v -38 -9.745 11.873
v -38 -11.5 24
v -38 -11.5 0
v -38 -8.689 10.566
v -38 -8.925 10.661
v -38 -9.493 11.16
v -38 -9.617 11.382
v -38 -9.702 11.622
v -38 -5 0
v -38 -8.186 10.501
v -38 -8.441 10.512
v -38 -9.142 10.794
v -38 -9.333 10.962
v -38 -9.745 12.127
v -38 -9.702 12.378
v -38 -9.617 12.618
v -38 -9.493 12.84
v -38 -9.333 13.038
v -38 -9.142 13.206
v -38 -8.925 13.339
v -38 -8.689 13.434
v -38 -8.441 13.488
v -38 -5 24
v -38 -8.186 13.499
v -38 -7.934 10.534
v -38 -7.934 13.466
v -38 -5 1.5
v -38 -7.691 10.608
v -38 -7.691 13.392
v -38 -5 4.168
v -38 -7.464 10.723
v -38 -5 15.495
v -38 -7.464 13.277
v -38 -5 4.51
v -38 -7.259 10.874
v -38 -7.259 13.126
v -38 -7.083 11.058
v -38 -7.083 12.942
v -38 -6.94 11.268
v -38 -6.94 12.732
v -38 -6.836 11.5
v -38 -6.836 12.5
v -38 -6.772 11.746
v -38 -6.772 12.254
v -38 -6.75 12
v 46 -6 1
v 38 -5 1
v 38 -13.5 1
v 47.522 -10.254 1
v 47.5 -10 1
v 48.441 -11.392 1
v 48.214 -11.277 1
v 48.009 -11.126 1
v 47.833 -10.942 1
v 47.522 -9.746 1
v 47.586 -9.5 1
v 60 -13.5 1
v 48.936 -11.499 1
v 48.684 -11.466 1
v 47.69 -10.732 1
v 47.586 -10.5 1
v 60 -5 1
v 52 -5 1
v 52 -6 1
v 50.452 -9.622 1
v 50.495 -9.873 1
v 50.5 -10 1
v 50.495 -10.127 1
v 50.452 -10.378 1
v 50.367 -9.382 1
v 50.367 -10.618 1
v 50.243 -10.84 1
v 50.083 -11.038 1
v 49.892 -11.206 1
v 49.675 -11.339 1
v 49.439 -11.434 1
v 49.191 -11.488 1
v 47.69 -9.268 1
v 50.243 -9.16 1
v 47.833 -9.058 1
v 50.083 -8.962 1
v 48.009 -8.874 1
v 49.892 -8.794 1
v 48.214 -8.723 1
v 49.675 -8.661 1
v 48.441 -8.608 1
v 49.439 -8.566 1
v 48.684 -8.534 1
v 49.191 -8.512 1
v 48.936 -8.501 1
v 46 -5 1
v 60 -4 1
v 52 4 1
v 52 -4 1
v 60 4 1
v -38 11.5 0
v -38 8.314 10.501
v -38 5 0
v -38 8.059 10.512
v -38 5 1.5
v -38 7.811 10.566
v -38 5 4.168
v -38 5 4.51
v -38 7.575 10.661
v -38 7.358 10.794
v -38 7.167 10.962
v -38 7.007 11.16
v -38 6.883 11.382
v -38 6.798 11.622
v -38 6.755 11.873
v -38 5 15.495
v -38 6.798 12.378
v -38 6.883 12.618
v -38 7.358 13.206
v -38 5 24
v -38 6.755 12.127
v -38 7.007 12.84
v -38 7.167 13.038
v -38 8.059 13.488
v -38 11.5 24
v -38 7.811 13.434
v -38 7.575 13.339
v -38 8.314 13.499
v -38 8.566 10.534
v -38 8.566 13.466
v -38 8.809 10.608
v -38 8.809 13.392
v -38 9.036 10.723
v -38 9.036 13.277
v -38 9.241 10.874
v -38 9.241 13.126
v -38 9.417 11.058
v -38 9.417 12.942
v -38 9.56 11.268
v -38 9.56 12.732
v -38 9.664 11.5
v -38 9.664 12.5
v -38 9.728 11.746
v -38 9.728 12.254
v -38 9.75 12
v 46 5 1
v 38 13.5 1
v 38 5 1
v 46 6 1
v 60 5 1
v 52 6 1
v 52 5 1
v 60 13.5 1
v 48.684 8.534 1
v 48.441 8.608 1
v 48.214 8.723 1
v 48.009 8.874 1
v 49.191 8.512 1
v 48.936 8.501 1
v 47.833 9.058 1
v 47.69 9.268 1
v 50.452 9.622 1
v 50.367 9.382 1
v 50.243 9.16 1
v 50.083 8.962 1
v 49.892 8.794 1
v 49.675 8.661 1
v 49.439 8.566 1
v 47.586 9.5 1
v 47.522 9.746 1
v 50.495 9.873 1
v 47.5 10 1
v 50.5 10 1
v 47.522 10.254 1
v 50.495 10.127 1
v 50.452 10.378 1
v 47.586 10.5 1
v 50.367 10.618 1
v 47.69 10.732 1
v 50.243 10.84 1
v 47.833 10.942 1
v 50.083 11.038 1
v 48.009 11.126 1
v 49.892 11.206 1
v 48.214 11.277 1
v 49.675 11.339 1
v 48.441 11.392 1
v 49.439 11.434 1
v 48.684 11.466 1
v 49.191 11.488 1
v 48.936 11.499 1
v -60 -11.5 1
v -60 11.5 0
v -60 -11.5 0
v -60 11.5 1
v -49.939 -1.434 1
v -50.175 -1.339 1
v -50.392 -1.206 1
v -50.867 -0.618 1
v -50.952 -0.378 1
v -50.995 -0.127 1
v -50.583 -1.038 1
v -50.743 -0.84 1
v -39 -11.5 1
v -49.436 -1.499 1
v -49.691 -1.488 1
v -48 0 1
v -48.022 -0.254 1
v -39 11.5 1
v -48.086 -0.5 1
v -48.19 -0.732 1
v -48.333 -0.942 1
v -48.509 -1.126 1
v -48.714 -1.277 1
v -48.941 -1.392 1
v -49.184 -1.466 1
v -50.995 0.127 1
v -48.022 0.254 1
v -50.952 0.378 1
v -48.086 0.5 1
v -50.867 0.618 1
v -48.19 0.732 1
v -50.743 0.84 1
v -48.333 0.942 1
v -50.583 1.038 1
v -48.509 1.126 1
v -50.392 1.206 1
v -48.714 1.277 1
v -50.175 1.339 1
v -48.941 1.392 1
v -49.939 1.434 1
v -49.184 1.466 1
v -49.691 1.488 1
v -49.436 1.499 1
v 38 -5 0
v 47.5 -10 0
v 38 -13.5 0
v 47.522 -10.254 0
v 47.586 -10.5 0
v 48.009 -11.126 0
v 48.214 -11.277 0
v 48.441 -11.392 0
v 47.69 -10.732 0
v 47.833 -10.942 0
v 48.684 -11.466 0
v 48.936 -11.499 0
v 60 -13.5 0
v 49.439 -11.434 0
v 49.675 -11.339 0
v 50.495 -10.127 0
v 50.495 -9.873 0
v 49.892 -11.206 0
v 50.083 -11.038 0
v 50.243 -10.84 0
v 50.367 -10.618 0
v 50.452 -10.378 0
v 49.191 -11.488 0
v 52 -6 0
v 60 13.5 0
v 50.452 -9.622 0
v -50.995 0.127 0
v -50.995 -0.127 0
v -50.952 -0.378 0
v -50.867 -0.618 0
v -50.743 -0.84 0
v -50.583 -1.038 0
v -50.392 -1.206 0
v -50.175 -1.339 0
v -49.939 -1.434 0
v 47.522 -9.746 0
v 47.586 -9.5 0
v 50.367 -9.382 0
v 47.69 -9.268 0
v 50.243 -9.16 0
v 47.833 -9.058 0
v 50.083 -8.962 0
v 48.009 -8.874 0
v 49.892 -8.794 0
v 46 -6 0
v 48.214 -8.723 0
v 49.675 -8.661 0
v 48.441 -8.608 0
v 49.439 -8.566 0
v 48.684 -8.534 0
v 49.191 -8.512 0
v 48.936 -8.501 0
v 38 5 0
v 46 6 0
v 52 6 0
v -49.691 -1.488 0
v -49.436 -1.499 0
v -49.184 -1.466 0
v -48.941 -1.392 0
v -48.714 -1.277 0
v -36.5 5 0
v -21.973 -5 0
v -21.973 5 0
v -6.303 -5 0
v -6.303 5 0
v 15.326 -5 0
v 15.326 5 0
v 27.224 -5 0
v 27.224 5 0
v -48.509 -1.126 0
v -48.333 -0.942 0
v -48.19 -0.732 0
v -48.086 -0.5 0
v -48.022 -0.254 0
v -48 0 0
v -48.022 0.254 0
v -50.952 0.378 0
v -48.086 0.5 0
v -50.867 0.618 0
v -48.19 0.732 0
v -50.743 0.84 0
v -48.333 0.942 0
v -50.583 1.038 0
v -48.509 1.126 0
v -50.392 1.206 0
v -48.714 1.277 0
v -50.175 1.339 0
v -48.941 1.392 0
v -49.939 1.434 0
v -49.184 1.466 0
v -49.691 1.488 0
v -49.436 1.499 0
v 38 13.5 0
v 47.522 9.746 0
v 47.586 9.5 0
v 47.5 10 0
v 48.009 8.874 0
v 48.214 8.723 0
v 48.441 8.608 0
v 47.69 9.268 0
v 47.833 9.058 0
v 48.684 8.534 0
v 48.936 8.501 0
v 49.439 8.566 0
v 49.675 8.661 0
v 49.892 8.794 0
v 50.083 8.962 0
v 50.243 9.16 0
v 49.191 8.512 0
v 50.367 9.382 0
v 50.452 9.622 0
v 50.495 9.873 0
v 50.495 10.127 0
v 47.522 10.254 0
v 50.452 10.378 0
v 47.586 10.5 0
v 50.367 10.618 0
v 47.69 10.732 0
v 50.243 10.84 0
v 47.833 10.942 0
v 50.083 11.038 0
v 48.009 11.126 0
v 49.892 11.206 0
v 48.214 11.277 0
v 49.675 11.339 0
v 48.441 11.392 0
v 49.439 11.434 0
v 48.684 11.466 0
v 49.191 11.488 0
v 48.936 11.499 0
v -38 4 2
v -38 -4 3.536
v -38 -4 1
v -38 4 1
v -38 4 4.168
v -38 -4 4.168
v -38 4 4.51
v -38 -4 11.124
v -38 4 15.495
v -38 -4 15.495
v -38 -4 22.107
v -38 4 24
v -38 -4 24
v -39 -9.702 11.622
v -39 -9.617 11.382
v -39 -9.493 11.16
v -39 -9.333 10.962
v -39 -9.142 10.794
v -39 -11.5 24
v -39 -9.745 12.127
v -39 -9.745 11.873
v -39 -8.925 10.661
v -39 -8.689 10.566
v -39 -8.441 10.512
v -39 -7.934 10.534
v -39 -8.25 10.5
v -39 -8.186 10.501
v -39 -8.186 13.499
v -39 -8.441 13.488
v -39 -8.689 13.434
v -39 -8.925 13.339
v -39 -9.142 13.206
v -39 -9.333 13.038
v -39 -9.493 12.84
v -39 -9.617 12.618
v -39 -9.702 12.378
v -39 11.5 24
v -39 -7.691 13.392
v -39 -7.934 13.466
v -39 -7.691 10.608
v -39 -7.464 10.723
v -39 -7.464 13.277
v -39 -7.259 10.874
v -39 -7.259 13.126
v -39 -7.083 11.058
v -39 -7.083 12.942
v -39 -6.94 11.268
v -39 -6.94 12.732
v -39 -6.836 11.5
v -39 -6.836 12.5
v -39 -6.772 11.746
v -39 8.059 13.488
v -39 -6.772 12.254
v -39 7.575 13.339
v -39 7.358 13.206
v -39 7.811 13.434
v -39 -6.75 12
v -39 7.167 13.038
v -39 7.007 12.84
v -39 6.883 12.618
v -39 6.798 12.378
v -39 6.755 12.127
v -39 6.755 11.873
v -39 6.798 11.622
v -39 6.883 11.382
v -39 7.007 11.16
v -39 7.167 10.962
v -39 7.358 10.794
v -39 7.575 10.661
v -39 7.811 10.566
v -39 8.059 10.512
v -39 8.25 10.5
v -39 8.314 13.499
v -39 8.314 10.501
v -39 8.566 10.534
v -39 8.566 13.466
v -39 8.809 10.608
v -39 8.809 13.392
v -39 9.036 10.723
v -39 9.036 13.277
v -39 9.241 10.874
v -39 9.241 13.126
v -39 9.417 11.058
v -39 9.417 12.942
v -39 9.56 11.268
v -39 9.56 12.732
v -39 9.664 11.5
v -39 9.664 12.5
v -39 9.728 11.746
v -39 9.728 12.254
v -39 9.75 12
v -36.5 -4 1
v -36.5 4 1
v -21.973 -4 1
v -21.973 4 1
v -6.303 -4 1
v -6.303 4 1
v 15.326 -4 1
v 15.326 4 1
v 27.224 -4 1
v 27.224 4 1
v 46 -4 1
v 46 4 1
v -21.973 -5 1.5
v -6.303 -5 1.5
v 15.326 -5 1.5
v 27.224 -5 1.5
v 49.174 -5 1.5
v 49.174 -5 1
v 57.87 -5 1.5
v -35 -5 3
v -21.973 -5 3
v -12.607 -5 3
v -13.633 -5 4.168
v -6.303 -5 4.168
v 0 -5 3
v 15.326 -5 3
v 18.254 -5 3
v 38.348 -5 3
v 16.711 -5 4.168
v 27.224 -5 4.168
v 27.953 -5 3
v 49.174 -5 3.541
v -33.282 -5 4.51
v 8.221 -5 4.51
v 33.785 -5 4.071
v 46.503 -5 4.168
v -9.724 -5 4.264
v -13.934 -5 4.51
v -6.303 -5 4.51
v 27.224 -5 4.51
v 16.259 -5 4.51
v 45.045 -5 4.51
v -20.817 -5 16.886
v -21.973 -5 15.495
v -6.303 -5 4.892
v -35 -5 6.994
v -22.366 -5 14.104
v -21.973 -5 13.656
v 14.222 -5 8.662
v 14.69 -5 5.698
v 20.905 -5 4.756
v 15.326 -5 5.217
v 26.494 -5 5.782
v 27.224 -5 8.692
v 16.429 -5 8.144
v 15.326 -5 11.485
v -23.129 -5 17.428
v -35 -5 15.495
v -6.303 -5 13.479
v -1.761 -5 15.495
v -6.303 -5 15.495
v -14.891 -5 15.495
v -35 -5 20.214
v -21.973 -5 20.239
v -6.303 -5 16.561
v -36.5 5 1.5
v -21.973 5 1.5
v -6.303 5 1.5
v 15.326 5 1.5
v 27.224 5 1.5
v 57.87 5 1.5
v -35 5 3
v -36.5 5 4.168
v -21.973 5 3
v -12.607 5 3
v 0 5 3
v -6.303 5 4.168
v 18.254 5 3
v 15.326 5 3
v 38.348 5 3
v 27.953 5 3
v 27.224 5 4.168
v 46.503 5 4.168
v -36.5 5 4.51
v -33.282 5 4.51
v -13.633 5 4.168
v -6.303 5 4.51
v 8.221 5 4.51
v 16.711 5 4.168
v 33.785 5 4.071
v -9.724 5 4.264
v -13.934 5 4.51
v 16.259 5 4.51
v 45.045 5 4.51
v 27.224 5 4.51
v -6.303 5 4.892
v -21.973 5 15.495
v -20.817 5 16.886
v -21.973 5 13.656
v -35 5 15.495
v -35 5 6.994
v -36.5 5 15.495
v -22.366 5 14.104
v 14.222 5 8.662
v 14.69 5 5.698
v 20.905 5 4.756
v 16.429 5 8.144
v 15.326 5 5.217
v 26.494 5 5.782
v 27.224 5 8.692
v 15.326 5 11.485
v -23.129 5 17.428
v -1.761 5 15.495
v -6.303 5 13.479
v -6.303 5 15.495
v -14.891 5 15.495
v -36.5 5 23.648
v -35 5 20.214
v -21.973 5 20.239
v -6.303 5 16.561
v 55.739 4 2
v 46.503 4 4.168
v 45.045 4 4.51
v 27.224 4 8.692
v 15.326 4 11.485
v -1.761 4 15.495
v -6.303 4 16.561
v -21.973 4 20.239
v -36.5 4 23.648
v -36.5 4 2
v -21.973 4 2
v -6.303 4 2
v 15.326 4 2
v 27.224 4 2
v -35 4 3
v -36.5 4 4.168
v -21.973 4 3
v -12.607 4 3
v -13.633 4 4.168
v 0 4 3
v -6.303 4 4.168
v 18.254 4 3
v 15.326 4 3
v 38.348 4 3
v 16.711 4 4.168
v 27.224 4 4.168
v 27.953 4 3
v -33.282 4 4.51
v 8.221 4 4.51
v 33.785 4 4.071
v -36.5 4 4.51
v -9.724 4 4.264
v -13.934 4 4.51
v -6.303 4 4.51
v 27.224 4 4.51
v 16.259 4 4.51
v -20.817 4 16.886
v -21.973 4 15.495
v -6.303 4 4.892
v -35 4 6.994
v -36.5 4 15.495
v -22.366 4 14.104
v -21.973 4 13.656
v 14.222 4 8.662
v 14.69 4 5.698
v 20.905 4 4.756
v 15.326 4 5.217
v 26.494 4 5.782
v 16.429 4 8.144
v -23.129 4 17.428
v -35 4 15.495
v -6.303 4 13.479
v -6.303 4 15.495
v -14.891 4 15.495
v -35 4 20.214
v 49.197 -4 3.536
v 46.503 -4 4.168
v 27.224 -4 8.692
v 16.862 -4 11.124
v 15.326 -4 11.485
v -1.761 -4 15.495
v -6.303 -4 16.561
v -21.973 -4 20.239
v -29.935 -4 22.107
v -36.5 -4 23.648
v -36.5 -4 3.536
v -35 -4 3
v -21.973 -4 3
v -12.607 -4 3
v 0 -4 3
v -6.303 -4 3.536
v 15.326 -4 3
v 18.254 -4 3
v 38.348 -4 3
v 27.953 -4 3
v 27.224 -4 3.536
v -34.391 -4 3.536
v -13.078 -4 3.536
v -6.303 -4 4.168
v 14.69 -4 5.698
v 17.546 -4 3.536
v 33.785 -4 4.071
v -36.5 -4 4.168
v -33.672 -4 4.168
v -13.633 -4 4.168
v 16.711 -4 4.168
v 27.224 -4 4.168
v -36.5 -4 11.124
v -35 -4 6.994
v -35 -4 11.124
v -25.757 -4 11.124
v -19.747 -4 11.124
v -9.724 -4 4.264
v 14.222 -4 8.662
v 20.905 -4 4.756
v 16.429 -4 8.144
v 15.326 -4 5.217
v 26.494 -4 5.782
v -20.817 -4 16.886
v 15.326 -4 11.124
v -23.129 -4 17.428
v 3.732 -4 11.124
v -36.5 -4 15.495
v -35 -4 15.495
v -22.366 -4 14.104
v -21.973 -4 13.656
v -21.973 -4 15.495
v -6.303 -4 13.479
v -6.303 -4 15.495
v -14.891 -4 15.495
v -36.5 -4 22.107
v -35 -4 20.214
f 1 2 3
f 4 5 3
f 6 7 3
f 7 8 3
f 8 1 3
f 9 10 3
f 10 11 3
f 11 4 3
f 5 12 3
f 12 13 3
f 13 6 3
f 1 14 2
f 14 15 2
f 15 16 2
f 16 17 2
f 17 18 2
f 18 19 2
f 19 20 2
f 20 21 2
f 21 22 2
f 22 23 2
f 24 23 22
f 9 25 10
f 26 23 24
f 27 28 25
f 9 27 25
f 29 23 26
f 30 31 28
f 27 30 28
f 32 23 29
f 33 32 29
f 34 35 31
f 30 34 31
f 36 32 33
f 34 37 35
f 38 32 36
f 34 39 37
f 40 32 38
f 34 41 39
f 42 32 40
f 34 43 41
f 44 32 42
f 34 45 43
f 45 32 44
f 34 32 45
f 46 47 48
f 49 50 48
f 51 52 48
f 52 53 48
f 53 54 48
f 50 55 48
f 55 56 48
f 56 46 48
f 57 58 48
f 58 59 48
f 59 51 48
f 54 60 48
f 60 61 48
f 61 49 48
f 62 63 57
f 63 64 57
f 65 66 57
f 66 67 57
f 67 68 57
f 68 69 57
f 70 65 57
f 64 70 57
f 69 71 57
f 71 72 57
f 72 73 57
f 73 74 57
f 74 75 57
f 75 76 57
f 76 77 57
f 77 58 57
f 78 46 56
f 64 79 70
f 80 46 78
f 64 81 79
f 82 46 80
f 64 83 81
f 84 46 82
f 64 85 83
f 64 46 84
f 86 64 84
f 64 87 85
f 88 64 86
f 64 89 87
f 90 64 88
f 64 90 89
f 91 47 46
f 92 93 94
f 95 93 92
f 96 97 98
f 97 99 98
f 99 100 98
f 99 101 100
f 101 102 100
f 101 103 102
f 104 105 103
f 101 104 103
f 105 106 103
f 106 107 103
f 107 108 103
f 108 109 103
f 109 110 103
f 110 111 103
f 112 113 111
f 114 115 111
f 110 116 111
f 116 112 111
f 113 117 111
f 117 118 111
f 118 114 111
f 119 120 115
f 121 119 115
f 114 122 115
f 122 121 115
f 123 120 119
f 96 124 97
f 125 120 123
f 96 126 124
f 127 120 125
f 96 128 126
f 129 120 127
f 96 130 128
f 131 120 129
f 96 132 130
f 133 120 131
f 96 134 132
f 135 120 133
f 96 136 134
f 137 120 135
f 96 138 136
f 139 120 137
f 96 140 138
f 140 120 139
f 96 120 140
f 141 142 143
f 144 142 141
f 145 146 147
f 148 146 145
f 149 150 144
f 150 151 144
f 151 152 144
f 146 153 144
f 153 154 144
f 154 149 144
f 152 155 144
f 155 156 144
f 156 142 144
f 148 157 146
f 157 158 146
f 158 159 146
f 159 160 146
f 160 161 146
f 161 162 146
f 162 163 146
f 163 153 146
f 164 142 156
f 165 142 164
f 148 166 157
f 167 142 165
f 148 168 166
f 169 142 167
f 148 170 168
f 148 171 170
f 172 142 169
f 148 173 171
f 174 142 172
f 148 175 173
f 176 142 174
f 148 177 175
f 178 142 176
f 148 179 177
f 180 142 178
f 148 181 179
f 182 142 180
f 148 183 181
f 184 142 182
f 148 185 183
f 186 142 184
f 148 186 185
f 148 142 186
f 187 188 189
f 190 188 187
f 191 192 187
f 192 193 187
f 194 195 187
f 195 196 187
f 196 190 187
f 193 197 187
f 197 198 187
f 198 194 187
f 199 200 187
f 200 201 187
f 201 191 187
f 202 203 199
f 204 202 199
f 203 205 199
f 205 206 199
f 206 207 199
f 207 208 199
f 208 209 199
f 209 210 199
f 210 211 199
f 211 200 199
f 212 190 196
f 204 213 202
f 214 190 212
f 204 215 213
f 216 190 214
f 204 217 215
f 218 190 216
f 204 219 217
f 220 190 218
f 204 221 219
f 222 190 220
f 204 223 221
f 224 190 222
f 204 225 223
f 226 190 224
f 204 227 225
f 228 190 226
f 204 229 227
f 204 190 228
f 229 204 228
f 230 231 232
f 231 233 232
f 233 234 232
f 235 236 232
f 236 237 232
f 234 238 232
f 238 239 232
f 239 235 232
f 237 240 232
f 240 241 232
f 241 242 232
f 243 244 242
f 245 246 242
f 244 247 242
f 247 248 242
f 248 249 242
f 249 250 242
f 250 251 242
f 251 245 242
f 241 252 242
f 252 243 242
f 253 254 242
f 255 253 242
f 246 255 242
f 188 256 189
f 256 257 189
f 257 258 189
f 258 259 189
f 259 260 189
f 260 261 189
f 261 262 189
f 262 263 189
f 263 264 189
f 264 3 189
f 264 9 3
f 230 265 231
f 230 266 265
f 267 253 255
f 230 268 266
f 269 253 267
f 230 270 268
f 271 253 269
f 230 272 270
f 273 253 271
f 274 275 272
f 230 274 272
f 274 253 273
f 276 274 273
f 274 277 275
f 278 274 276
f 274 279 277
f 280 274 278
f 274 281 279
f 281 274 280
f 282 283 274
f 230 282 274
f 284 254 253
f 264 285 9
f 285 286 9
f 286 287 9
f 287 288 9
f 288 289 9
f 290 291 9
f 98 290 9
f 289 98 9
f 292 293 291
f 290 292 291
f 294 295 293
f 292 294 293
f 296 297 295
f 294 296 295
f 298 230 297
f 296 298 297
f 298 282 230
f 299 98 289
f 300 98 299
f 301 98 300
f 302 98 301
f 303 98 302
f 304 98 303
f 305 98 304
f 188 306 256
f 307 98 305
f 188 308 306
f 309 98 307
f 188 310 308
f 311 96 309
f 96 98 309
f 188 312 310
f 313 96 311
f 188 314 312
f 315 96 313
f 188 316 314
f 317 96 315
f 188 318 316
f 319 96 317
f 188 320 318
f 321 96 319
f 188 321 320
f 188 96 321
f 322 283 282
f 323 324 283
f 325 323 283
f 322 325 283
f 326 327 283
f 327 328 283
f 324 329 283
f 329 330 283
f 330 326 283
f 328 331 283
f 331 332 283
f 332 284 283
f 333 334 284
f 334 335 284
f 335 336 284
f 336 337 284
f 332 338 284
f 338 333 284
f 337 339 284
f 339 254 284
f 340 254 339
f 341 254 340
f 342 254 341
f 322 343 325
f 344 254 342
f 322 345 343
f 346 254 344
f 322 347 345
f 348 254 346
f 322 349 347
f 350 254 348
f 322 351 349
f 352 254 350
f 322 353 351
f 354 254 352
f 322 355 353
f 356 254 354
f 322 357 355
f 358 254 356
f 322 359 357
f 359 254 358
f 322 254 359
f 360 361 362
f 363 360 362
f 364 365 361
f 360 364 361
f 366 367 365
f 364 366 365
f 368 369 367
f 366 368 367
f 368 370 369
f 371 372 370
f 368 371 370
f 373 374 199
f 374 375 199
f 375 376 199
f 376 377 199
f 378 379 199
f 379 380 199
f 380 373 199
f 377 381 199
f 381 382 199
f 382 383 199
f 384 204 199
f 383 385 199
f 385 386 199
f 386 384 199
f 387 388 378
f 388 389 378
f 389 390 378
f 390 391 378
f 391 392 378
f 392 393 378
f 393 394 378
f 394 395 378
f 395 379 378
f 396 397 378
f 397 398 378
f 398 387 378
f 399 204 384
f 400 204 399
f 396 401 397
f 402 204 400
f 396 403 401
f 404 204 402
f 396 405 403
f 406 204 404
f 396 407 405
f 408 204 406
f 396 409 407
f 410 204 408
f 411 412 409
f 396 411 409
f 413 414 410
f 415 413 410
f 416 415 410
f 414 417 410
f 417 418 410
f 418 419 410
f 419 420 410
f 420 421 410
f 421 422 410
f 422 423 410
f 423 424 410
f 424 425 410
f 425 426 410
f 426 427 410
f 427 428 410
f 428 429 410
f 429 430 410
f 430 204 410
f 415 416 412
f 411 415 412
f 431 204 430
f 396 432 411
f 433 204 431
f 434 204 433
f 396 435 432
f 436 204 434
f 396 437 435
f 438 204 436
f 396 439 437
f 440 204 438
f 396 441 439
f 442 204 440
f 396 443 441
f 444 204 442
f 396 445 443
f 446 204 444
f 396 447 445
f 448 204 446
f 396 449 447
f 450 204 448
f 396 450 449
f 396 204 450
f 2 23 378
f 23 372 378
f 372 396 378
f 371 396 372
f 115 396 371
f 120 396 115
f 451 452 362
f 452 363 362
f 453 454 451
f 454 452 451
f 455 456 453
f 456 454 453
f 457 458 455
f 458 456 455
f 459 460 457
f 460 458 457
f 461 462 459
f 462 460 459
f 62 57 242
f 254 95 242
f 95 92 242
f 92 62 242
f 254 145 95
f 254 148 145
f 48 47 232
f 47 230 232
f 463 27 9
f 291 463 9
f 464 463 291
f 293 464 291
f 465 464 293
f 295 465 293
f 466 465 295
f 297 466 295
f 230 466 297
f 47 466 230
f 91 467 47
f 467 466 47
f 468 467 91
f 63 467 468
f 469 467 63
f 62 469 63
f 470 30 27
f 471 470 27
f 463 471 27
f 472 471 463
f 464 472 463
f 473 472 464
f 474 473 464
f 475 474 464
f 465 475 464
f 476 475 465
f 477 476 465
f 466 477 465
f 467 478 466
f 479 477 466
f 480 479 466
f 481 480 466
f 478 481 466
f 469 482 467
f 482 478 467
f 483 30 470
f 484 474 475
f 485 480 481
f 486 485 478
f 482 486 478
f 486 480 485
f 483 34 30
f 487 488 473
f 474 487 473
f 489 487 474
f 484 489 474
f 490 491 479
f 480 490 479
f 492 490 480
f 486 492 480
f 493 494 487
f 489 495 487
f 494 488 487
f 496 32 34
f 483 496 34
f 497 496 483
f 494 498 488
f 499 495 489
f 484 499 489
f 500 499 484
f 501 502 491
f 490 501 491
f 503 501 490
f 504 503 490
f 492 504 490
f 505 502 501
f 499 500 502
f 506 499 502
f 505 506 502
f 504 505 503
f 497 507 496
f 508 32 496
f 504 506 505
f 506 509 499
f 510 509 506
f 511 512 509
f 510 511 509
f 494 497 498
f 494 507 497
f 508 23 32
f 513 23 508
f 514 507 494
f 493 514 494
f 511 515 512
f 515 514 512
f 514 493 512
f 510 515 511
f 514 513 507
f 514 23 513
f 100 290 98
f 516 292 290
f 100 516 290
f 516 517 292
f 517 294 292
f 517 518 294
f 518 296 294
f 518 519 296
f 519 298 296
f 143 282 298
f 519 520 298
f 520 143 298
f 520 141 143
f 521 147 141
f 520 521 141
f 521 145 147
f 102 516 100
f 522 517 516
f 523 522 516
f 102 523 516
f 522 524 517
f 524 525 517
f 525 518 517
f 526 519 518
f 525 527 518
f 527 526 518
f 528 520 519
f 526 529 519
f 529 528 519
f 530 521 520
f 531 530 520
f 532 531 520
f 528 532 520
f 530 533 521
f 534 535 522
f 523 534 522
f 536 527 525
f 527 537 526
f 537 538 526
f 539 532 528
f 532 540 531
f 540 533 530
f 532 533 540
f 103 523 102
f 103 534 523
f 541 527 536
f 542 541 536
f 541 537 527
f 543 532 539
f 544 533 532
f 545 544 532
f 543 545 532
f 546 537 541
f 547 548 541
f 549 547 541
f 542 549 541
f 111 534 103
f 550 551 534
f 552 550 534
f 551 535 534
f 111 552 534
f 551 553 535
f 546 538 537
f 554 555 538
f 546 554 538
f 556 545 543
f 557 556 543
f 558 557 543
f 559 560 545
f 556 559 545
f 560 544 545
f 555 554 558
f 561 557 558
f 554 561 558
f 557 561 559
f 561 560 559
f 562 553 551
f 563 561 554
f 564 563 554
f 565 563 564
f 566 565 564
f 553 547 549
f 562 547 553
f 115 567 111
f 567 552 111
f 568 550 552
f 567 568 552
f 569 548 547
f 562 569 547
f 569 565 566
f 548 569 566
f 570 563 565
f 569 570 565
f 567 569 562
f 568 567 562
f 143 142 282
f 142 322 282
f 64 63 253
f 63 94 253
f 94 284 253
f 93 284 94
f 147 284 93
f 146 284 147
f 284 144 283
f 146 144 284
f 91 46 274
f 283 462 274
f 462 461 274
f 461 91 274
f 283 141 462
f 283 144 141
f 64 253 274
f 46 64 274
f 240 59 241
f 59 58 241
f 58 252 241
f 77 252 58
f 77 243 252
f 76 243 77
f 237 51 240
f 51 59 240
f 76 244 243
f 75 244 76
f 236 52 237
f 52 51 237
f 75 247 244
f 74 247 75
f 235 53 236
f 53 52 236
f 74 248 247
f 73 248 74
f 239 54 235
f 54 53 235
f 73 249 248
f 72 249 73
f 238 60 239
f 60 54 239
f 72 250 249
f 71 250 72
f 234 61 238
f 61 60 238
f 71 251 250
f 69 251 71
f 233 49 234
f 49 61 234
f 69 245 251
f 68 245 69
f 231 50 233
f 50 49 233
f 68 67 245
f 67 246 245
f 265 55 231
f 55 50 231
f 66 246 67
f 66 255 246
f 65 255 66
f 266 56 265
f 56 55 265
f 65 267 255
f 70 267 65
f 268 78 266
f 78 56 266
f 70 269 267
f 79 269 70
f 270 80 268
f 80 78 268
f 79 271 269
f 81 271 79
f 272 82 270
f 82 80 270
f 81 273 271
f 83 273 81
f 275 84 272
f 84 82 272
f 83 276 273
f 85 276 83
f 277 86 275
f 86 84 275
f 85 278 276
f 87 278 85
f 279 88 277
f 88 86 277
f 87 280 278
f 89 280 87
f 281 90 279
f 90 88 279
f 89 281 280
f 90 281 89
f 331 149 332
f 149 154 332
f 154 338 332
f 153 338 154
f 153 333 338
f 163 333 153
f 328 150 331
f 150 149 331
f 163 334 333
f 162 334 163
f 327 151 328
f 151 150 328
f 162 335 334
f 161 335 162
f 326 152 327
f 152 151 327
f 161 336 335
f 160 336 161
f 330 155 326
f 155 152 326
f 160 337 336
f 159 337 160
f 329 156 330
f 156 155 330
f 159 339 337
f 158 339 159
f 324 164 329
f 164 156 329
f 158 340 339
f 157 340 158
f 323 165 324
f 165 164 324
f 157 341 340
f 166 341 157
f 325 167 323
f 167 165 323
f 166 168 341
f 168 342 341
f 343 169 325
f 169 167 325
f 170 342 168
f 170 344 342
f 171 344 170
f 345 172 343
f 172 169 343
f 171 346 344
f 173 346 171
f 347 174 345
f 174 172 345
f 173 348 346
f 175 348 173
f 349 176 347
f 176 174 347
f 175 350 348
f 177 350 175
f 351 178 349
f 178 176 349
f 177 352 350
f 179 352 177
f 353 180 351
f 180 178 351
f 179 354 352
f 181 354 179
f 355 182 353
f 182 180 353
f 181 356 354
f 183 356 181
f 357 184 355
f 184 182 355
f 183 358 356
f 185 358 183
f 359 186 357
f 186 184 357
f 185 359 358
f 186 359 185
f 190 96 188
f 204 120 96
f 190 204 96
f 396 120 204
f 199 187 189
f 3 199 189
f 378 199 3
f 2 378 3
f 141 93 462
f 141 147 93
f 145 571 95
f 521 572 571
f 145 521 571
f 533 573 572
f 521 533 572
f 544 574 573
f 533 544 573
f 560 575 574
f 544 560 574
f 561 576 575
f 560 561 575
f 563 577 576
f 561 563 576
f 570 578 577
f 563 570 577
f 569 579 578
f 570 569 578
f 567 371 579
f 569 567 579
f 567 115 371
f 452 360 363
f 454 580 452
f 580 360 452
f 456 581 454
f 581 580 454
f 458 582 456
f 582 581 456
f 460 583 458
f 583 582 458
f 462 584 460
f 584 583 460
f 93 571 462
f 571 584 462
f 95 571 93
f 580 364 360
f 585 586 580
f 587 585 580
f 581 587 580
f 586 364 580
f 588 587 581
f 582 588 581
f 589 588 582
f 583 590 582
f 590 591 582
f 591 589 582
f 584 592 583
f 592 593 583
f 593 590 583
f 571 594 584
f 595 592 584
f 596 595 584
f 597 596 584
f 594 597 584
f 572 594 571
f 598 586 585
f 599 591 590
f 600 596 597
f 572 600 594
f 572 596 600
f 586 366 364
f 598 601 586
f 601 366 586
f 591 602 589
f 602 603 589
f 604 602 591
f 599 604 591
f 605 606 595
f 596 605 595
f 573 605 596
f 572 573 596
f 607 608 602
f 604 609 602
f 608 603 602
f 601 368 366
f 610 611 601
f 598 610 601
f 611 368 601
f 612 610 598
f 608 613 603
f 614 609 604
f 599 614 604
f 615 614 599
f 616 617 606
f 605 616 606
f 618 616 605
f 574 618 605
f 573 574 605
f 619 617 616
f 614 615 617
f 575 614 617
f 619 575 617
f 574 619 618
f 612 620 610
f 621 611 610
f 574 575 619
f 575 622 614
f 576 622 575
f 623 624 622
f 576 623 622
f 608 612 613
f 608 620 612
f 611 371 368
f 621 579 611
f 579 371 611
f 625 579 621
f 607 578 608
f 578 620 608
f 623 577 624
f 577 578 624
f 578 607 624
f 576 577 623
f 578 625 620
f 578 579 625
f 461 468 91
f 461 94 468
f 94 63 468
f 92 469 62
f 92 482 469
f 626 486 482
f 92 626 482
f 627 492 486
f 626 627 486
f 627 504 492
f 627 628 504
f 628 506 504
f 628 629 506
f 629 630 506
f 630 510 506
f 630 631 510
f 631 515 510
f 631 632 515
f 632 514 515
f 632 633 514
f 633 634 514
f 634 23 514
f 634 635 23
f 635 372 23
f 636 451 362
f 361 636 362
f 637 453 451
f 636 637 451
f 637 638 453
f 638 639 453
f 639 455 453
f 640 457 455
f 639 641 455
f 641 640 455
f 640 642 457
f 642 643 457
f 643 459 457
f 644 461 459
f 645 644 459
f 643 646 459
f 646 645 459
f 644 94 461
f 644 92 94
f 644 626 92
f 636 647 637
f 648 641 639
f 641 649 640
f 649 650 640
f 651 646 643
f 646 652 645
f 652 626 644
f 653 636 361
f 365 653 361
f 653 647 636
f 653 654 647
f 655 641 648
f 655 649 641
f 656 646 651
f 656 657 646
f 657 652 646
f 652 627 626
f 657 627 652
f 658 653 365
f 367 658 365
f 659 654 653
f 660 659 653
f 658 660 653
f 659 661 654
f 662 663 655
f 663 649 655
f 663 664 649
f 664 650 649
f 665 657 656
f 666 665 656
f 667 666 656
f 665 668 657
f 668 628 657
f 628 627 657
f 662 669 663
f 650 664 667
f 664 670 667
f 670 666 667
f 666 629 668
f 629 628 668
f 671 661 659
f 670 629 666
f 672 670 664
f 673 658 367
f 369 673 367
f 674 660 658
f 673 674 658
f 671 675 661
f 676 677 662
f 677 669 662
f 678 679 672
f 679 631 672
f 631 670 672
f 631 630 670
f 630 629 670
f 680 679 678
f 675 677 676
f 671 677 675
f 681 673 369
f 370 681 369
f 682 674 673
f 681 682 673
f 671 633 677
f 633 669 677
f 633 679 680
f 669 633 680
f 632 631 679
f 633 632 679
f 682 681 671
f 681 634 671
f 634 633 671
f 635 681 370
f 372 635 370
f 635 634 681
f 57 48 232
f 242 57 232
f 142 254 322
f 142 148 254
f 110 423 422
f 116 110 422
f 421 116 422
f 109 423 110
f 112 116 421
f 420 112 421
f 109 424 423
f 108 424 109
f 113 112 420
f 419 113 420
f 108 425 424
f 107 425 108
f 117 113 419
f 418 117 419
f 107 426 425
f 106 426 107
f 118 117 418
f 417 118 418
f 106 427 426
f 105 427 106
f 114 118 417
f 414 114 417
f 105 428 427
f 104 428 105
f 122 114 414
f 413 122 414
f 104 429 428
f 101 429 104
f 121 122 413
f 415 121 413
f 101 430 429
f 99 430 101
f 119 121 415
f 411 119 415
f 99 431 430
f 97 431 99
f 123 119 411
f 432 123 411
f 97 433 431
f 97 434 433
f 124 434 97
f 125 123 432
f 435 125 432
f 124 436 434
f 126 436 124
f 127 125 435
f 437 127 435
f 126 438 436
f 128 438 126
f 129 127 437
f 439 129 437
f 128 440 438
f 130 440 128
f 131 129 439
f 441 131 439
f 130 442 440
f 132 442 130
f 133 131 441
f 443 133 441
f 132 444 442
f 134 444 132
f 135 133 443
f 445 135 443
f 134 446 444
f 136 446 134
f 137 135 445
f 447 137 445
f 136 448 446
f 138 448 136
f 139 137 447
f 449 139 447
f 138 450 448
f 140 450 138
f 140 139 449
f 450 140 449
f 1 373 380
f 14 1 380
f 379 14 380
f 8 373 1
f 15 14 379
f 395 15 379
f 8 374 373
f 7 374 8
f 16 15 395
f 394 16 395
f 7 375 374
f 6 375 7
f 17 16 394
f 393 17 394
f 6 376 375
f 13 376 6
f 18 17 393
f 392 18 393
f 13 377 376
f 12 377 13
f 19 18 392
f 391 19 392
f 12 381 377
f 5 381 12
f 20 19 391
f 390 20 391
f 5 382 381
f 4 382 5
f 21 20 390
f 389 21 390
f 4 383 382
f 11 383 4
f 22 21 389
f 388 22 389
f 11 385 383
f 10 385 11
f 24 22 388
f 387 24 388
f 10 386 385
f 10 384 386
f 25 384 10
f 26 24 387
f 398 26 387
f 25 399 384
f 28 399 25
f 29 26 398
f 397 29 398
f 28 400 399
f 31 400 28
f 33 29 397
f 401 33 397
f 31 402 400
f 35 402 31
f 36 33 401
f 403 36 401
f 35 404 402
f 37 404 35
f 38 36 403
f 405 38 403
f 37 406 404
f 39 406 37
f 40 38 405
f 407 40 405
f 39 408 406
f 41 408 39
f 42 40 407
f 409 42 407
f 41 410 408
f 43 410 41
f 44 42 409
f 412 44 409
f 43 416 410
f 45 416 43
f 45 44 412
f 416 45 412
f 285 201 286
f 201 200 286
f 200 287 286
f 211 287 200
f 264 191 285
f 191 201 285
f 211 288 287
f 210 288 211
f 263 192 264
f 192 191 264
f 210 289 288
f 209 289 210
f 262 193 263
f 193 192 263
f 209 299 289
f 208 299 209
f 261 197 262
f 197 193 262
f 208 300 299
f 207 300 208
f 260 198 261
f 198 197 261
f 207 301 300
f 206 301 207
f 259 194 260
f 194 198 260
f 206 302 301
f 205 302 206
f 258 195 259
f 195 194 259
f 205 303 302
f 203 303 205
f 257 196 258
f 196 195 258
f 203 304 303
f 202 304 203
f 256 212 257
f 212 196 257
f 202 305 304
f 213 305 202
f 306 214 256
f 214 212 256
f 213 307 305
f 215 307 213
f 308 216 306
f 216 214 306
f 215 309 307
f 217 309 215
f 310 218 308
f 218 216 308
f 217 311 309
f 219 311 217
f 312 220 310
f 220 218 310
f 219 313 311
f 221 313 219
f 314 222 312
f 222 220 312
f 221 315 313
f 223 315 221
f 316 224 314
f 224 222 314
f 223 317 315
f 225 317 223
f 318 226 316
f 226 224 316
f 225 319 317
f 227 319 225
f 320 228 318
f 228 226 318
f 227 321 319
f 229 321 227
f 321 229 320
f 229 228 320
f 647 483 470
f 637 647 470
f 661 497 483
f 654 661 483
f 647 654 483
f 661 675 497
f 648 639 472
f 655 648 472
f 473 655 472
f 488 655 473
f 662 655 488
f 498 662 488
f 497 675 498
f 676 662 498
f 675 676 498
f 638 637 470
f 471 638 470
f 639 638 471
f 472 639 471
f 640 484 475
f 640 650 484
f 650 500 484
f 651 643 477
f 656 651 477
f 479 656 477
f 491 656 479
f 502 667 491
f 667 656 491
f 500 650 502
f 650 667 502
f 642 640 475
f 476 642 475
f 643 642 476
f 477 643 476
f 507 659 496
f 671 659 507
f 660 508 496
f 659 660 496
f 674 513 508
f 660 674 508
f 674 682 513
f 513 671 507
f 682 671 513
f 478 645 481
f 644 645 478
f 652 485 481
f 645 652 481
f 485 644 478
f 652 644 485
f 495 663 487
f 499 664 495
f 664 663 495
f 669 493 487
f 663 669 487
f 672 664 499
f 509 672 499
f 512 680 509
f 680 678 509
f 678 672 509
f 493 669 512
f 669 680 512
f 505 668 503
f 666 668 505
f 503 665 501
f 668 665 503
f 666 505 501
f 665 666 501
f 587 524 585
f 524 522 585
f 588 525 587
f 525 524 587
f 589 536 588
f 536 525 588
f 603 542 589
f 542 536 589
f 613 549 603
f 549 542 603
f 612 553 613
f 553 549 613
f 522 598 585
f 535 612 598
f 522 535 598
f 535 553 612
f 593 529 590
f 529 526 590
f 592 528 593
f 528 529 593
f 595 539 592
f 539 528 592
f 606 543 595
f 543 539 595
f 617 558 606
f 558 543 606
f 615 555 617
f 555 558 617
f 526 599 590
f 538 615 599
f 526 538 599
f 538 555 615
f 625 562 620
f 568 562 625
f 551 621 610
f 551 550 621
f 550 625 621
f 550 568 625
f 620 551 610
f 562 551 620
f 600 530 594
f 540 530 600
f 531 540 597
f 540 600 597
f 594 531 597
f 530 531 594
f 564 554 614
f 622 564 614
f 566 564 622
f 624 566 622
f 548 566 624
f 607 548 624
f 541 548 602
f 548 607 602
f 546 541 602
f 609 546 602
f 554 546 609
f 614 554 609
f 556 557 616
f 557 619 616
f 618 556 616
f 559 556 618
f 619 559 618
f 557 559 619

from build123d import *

# Parameters (mm, degrees)
SKETCH1_W           = 120
SKETCH1_H           = 25
BOSS_EXTRUDE4_DEPTH = 1
SKETCH6_W           = 76
SKETCH6_H           = 7.5
CUT_EXTRUDE1_DEPTH  = 62.296410988
SKETCH7_W           = 1
SKETCH7_H           = 25
BOSS_EXTRUDE5_DEPTH = 23
SKETCH11_R          = 1.5
SKETCH11_W          = 6
SKETCH11_H          = 12
CUT_EXTRUDE3_DEPTH  = 66.819829839
CUT_EXTRUDE4_DEPTH  = 1
CUT_EXTRUDE5_DEPTH  = 1
BOSS_EXTRUDE6_DEPTH = 1
SKETCH13_W          = 22
SKETCH13_H          = 1
BOSS_EXTRUDE7_DEPTH = 1
SKETCH16_R          = 1.5
CUT_EXTRUDE6_DEPTH  = 1
SKETCH17_R          = 1.5
CUT_EXTRUDE7_DEPTH  = 1
CUT_EXTRUDE8_REACH  = 69.218


with BuildPart() as part:
    # Sketch1 → Boss-Extrude4 (new body)
    with BuildSketch(Plane.XY):
        Rectangle(SKETCH1_W, SKETCH1_H)
    extrude(amount=BOSS_EXTRUDE4_DEPTH)

    # Sketch6 → Cut-Extrude1 (cut, through all)
    with BuildSketch(Plane(origin=(0, 0, 0), x_dir=(-1, 0, 0), z_dir=(0, 0, -1))):
        with Locations((0, 8.75)):
            Rectangle(SKETCH6_W, SKETCH6_H)
        with Locations((0, -8.75)):
            Rectangle(SKETCH6_W, SKETCH6_H)
    extrude(amount=-CUT_EXTRUDE1_DEPTH, mode=Mode.SUBTRACT)

    # Sketch7 → Boss-Extrude5 (add)
    with BuildSketch(Plane.XY.offset(1)):
        with Locations((-38.5, 0)):
            Rectangle(SKETCH7_W, SKETCH7_H)
    extrude(amount=BOSS_EXTRUDE5_DEPTH)

    # Sketch11 → Cut-Extrude3 (cut, through all)
    with BuildSketch(Plane(origin=(0, 0, 0), x_dir=(-1, 0, 0), z_dir=(0, 0, -1))):
        with Locations((-49, 10)):
            Circle(SKETCH11_R)
        with Locations((-49, -10)):
            Circle(SKETCH11_R)
        with Locations((-49, 0)):
            Rectangle(SKETCH11_W, SKETCH11_H)
    extrude(amount=-CUT_EXTRUDE3_DEPTH, mode=Mode.SUBTRACT)

    # Sketch14 → Cut-Extrude4 (cut)
    with BuildSketch(Plane(origin=(0, 12.5, 0), x_dir=(1, 0, 0), z_dir=(0, 1, 0))):
        Polygon((-60, -1), (-39, -1), (-39, -24), (-38, -24), (-38, 0), (-60, 0), align=None)
    extrude(amount=-CUT_EXTRUDE4_DEPTH, mode=Mode.SUBTRACT)

    # Sketch15 → Cut-Extrude5 (cut)
    with BuildSketch(Plane.XZ.offset(12.5)):
        Polygon((-60, 0), (-38, 0), (-38, 24), (-39, 24), (-39, 1), (-60, 1), align=None)
    extrude(amount=-CUT_EXTRUDE5_DEPTH, mode=Mode.SUBTRACT)

    # Sketch10 → Boss-Extrude6 (add)
    with BuildSketch(Plane(origin=(0, 5, 0), x_dir=(1, 0, 0), z_dir=(0, 1, 0))):
        Polygon((-38, -1), (-38, -24), (60, -1), align=None)
    boss_extrude6 = extrude(amount=-BOSS_EXTRUDE6_DEPTH)

    # Mirror1: Boss-Extrude6 across plane
    add(boss_extrude6.mirror(Plane(origin=(0, 0, 0), x_dir=(0, 0, 1), z_dir=(0, -1, 0))))

    # Sketch13 → Boss-Extrude7 (add)
    with BuildSketch(Plane(origin=(0, -12.5, 0), x_dir=(-1, 0, 0), z_dir=(0, -1, 0))):
        with Locations((-49, -0.5)):
            Rectangle(SKETCH13_W, SKETCH13_H)
    boss_extrude7 = extrude(amount=BOSS_EXTRUDE7_DEPTH)

    # Mirror2: Boss-Extrude7 across plane
    add(boss_extrude7.mirror(Plane(origin=(0, 0, 0), x_dir=(0, 0, 1), z_dir=(0, -1, 0))))

    # Sketch16 → Cut-Extrude6 (cut)
    with BuildSketch(Plane(origin=(-38, 0, 0), x_dir=(0, 0, -1), z_dir=(1, 0, 0))):
        with Locations(Location((-12, -8.25, 0), (0, 0, 90))):
            Circle(SKETCH16_R)
        with Locations(Location((-12, 8.25, 0), (0, 0, 90))):
            Circle(SKETCH16_R)
    extrude(amount=-CUT_EXTRUDE6_DEPTH, mode=Mode.SUBTRACT)

    # Sketch17 → Cut-Extrude7 (cut)
    with BuildSketch(Plane.XY.offset(1)):
        with Locations((-49.5, 0)):
            Circle(SKETCH17_R)
    extrude(amount=-CUT_EXTRUDE7_DEPTH, mode=Mode.SUBTRACT)

    # Cut-Extrude8: up to this face of the body (flat: up to its plane)
    cut_extrude8_end = Plane(part.part.faces().sort_by_distance((-4.996397894, -5, 8.150734275))[0])
    # Sketch18 → Cut-Extrude8 (cut, up to the picked face)
    with BuildSketch(Plane(origin=(0, 5, 0), x_dir=(1, 0, 0), z_dir=(0, 1, 0)), mode=Mode.PRIVATE) as cut_extrude8_sk1:
        Polygon((-35, -6.994072078), (-35, -20.214403976), (-23.128514946, -17.428239116), align=None)
    cut_extrude8_tool1 = split(extrude(cut_extrude8_sk1.sketch, amount=-CUT_EXTRUDE8_REACH, mode=Mode.PRIVATE), bisect_by=cut_extrude8_end, keep=Keep.BOTH, mode=Mode.PRIVATE)
    # Sketch18 → Cut-Extrude8 (cut, up to the picked face)
    with BuildSketch(Plane(origin=(0, 5, 0), x_dir=(1, 0, 0), z_dir=(0, 1, 0)), mode=Mode.PRIVATE) as cut_extrude8_sk2:
        Polygon((38.348329984, -3), (27.953371723, -3), (33.784828112, -4.071025949), align=None)
    cut_extrude8_tool2 = split(extrude(cut_extrude8_sk2.sketch, amount=-CUT_EXTRUDE8_REACH, mode=Mode.PRIVATE), bisect_by=cut_extrude8_end, keep=Keep.BOTH, mode=Mode.PRIVATE)
    # Sketch18 → Cut-Extrude8 (cut, up to the picked face)
    with BuildSketch(Plane(origin=(0, 5, 0), x_dir=(1, 0, 0), z_dir=(0, 1, 0)), mode=Mode.PRIVATE) as cut_extrude8_sk3:
        Polygon((-35, -3), (-22.366422742, -14.103990342), (-12.606827419, -3), align=None)
    cut_extrude8_tool3 = split(extrude(cut_extrude8_sk3.sketch, amount=-CUT_EXTRUDE8_REACH, mode=Mode.PRIVATE), bisect_by=cut_extrude8_end, keep=Keep.BOTH, mode=Mode.PRIVATE)
    # Sketch18 → Cut-Extrude8 (cut, up to the picked face)
    with BuildSketch(Plane(origin=(0, 5, 0), x_dir=(1, 0, 0), z_dir=(0, 1, 0)), mode=Mode.PRIVATE) as cut_extrude8_sk4:
        Polygon((-20.817385235, -16.885831123), (-9.723935411, -4.264246351), (14.222143926, -8.662268156), align=None)
    cut_extrude8_tool4 = split(extrude(cut_extrude8_sk4.sketch, amount=-CUT_EXTRUDE8_REACH, mode=Mode.PRIVATE), bisect_by=cut_extrude8_end, keep=Keep.BOTH, mode=Mode.PRIVATE)
    # Sketch18 → Cut-Extrude8 (cut, up to the picked face)
    with BuildSketch(Plane(origin=(0, 5, 0), x_dir=(1, 0, 0), z_dir=(0, 1, 0)), mode=Mode.PRIVATE) as cut_extrude8_sk5:
        Polygon((14.690257392, -5.69806474), (18.253543406, -3), (0, -3), align=None)
    cut_extrude8_tool5 = split(extrude(cut_extrude8_sk5.sketch, amount=-CUT_EXTRUDE8_REACH, mode=Mode.PRIVATE), bisect_by=cut_extrude8_end, keep=Keep.BOTH, mode=Mode.PRIVATE)
    # Sketch18 → Cut-Extrude8 (cut, up to the picked face)
    with BuildSketch(Plane(origin=(0, 5, 0), x_dir=(1, 0, 0), z_dir=(0, 1, 0)), mode=Mode.PRIVATE) as cut_extrude8_sk6:
        Polygon((20.904659834, -4.755587386), (26.493983886, -5.782142452), (16.429296354, -8.144262995), align=None)
    cut_extrude8_tool6 = split(extrude(cut_extrude8_sk6.sketch, amount=-CUT_EXTRUDE8_REACH, mode=Mode.PRIVATE), bisect_by=cut_extrude8_end, keep=Keep.BOTH, mode=Mode.PRIVATE)
    add(cut_extrude8_tool1.solids().sort_by(Axis((-31.042838, 5, 14.878905), (0, -1, 0)))[0], mode=Mode.SUBTRACT)
    add(cut_extrude8_tool2.solids().sort_by(Axis((33.362177, 5, 3.357009), (0, -1, 0)))[0], mode=Mode.SUBTRACT)
    add(cut_extrude8_tool3.solids().sort_by(Axis((-23.324417, 5, 6.70133), (0, -1, 0)))[0], mode=Mode.SUBTRACT)
    add(cut_extrude8_tool4.solids().sort_by(Axis((-5.439726, 5, 9.937449), (0, -1, 0)))[0], mode=Mode.SUBTRACT)
    add(cut_extrude8_tool5.solids().sort_by(Axis((10.981267, 5, 3.899355), (0, -1, 0)))[0], mode=Mode.SUBTRACT)
    add(cut_extrude8_tool6.solids().sort_by(Axis((21.27598, 5, 6.227331), (0, -1, 0)))[0], mode=Mode.SUBTRACT)


solid = part.part
